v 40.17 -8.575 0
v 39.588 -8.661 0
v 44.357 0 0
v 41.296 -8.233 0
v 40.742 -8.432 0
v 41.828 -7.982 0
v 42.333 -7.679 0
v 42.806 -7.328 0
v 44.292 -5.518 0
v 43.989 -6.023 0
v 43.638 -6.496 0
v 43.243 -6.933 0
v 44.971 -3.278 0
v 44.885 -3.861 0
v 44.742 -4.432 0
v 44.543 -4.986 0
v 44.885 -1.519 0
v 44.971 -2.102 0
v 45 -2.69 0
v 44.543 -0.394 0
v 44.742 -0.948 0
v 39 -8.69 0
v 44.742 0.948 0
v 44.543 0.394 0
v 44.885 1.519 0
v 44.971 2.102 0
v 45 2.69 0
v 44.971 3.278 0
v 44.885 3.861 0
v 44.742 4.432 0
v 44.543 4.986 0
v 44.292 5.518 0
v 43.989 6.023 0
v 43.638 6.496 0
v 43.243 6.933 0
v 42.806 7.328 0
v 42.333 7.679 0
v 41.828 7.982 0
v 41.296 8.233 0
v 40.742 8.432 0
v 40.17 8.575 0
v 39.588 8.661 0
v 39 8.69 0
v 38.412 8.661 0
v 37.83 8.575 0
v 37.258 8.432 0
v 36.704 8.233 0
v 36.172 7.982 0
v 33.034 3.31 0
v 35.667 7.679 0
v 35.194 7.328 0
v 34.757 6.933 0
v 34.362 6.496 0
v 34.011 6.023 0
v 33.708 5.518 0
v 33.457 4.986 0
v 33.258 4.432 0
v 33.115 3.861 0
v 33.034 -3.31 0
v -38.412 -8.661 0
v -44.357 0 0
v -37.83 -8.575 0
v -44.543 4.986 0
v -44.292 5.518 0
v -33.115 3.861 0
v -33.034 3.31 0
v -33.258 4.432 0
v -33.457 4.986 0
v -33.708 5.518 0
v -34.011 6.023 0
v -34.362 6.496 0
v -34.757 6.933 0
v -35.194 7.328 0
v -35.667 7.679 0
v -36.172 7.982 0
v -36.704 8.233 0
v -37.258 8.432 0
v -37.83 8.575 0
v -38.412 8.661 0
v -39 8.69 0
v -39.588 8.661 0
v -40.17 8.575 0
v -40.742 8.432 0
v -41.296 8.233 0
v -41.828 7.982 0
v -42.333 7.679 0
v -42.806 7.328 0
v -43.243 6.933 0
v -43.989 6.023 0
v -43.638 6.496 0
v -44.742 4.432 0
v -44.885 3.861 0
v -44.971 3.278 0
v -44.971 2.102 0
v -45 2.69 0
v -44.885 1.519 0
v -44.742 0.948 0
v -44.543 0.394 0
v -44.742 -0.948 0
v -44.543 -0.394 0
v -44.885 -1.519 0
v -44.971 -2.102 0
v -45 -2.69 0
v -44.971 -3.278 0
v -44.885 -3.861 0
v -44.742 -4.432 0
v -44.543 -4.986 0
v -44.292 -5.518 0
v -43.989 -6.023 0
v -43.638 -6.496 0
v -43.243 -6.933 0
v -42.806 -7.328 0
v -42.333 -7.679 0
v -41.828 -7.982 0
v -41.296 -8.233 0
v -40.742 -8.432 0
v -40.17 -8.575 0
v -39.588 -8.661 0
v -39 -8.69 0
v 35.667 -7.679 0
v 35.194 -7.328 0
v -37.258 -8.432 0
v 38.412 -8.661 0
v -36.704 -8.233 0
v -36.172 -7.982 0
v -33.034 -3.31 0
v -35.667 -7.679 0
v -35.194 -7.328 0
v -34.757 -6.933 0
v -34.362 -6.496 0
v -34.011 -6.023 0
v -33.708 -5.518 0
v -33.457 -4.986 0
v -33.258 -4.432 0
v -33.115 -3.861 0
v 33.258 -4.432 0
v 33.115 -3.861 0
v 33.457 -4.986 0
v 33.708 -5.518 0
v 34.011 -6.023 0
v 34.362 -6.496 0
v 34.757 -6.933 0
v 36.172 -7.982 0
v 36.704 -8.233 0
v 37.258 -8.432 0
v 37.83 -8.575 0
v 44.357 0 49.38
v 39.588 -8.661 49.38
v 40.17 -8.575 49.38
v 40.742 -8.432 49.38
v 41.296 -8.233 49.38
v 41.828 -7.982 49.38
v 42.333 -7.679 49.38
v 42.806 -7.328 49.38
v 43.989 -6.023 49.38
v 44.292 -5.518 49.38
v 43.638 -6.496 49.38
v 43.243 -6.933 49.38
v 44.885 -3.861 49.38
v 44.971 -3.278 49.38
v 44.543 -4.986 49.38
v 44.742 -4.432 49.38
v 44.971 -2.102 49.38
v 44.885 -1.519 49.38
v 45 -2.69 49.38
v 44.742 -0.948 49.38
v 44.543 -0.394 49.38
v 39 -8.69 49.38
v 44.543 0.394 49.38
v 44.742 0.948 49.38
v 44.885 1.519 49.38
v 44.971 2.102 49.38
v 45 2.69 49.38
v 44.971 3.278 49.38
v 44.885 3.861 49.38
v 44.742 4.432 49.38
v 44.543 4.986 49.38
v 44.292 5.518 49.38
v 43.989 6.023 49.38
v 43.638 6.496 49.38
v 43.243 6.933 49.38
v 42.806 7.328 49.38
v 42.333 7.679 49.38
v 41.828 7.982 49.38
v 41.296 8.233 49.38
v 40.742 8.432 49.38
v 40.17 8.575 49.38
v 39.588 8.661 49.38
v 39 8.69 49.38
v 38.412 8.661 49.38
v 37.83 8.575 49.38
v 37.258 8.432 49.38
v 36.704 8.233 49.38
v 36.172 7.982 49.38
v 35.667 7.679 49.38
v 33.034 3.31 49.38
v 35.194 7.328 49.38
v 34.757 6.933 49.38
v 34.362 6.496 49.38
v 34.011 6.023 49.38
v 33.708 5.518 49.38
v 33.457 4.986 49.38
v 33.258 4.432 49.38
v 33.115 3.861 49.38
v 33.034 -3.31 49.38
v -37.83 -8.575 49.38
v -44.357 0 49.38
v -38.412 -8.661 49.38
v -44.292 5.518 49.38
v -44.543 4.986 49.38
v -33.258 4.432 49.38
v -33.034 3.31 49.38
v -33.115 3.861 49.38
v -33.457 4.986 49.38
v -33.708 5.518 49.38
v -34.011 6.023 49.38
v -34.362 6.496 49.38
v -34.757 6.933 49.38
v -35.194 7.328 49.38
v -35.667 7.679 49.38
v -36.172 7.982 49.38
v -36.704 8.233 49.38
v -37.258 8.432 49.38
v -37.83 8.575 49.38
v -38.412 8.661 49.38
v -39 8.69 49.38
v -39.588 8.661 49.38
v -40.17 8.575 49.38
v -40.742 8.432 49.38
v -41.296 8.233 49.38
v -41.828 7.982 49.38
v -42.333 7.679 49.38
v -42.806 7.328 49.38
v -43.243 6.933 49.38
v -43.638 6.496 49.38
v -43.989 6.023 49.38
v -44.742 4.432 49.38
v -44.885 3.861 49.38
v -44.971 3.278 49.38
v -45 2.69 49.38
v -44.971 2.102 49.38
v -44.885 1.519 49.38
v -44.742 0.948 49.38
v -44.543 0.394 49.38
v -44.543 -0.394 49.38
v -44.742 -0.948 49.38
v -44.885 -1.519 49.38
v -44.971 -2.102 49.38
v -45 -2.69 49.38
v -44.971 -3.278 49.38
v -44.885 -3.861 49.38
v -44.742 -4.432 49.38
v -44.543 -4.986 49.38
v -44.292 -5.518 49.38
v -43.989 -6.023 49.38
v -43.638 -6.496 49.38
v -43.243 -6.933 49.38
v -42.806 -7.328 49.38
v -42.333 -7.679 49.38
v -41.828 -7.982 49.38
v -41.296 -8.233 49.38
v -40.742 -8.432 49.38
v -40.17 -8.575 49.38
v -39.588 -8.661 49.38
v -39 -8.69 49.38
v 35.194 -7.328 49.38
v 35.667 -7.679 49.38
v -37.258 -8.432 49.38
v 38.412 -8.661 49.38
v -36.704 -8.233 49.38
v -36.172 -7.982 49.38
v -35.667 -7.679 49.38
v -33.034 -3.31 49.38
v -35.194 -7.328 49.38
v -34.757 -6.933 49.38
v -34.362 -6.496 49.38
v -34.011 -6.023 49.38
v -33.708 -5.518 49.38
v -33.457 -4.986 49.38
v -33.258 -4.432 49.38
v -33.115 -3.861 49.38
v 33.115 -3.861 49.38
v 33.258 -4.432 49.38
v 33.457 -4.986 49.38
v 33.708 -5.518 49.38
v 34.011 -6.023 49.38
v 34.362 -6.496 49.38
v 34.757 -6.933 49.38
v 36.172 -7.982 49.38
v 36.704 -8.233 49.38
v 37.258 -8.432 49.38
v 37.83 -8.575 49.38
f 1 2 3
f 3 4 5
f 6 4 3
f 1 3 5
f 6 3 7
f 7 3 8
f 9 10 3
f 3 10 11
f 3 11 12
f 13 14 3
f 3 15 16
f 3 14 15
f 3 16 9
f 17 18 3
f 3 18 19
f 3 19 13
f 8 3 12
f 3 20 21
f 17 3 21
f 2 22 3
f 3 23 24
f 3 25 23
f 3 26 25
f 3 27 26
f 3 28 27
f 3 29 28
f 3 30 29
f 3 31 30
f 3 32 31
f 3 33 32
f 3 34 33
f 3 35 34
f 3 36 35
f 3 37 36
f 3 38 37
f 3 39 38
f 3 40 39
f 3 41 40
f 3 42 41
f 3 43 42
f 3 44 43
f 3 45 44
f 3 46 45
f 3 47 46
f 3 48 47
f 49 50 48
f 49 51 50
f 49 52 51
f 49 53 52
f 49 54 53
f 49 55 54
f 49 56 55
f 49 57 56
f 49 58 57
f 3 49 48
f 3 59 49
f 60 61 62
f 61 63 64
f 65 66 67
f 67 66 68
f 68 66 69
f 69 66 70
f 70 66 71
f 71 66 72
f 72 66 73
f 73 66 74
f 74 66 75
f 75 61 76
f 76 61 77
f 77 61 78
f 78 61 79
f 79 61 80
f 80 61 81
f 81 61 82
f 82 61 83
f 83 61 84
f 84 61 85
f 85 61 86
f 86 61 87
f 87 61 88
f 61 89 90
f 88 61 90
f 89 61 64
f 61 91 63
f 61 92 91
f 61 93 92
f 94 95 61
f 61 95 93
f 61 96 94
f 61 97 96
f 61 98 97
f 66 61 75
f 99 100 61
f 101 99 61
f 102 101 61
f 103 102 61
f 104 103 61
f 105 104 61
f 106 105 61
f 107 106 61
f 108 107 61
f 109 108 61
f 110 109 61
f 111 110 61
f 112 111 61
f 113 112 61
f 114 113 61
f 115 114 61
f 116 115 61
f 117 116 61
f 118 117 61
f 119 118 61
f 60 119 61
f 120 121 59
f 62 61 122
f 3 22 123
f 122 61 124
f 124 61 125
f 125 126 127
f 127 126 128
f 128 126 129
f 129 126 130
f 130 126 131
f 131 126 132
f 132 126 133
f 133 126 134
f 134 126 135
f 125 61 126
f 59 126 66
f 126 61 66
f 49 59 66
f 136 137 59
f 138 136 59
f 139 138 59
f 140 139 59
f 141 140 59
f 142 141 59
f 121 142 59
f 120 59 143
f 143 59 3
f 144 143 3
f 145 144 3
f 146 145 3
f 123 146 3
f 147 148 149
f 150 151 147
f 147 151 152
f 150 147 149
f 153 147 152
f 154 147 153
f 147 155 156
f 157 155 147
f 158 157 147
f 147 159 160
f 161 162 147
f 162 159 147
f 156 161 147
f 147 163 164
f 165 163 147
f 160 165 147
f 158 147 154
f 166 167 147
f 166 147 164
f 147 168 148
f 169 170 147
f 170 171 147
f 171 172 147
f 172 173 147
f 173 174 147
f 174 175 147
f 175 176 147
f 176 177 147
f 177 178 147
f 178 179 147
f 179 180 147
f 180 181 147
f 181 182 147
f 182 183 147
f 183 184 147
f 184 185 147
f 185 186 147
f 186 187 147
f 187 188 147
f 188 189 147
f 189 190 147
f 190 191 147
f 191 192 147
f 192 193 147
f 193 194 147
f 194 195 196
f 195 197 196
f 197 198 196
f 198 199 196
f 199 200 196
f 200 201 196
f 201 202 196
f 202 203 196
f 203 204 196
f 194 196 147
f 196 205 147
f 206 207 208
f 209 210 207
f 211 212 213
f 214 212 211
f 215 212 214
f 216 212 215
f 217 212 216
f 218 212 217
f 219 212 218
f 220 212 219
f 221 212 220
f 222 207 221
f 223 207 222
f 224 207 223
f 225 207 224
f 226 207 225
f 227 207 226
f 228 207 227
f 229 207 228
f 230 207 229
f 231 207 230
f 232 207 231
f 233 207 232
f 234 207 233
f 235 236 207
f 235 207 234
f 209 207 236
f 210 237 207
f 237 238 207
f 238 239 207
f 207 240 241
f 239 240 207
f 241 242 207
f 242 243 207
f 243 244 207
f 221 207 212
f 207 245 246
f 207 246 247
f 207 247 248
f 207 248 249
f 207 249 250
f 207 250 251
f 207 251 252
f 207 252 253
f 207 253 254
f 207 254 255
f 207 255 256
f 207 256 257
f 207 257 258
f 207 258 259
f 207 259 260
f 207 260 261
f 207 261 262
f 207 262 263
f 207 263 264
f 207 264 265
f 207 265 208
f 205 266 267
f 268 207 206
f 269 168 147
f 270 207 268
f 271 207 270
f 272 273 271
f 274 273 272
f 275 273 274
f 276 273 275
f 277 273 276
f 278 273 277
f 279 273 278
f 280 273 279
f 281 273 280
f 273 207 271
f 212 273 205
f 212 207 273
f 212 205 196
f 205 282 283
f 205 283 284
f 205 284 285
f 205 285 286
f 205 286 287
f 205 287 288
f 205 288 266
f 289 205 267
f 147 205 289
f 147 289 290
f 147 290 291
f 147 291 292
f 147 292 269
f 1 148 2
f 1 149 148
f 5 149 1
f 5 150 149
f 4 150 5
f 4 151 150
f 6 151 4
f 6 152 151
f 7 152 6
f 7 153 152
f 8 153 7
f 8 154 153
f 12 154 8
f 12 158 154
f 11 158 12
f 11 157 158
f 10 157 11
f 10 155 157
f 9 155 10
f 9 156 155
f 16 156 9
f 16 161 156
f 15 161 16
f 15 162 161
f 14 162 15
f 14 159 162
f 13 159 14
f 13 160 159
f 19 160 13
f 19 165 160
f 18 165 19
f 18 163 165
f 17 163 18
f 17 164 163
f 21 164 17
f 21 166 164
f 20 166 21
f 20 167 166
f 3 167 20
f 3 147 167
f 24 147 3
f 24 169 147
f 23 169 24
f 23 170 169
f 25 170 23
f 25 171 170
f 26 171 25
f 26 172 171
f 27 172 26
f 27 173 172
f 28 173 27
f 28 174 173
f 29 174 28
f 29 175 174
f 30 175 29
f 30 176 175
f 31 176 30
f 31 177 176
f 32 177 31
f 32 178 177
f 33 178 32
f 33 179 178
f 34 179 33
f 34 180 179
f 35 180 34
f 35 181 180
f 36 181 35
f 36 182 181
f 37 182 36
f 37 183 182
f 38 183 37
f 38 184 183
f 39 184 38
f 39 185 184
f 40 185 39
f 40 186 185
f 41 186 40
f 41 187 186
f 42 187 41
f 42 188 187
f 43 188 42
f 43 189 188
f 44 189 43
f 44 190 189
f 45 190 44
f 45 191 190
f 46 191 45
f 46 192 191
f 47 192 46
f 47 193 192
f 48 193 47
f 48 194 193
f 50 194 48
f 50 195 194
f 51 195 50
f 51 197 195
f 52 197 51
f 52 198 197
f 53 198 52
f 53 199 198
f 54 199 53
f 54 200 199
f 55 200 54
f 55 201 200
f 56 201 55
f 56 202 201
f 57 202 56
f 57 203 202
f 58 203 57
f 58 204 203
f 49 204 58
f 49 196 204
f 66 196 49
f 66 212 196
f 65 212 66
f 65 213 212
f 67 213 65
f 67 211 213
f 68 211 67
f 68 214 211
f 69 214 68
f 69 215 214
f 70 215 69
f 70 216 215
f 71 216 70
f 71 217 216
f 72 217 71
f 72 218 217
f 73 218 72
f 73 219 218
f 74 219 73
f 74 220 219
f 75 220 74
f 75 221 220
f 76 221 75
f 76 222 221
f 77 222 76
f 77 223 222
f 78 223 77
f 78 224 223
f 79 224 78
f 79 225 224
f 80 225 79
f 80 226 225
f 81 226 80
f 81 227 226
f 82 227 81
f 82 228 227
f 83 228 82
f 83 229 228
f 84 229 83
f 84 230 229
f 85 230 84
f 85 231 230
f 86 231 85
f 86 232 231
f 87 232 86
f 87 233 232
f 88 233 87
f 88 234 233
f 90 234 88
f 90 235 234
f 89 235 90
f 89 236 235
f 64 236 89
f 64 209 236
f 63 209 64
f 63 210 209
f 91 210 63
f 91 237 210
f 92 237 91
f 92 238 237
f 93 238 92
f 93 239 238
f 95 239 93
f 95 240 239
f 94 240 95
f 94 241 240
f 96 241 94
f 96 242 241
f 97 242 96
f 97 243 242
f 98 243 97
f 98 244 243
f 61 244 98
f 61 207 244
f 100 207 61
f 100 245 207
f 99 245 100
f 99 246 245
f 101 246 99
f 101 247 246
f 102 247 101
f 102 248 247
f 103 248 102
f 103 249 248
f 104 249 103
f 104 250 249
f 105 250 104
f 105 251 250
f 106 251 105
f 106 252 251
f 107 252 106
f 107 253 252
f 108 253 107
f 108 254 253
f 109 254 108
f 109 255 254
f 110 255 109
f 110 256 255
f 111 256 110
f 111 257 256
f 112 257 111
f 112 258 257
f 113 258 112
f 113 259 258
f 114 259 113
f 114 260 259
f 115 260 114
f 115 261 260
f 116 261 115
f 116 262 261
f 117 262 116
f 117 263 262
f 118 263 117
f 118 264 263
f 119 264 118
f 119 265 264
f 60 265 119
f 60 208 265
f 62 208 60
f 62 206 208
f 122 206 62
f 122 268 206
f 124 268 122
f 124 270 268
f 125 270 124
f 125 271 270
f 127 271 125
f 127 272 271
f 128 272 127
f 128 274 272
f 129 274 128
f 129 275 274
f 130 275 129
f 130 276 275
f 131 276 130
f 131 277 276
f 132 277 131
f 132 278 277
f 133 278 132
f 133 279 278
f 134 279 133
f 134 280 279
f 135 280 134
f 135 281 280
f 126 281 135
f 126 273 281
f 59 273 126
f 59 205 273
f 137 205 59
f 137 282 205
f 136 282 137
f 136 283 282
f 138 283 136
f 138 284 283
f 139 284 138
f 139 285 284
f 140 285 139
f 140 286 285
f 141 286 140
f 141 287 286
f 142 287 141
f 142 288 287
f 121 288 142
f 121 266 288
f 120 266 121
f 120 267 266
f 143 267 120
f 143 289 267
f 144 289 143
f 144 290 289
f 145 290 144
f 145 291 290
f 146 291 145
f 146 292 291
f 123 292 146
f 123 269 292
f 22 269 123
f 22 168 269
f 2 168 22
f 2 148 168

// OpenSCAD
/* doodle-meta {"version":1,"parameters":{"width":{"label":"Overall width","description":"Changes the body width along X","unit":"mm","feature":"body_width"},"depth":{"label":"Overall depth","description":"Changes the body depth along Y","unit":"mm","feature":"body_depth"},"height":{"label":"Overall height","description":"Changes the body height along Z","unit":"mm","feature":"body_height"},"corner_radius":{"label":"Corner radius","description":"Radius of the rounded vertical edges","unit":"mm","feature":"corner_fillet"}},"features":{"body_width":{"kind":"dimension","axis":"x","label":"Overall width"},"body_depth":{"kind":"dimension","axis":"y","label":"Overall depth"},"body_height":{"kind":"dimension","axis":"z","label":"Overall height"},"corner_fillet":{"kind":"region","label":"Rounded vertical edges","min":[0,0,0],"max":[{"parameter":"width","scale":1,"offset":0},{"parameter":"depth","scale":1,"offset":0},{"parameter":"height","scale":1,"offset":0}]}}} */

// Top-level editable parameters
width = 90.0;
depth = 6.62;
height = 49.38;
corner_radius = 6.0;

// Derived constants (not editable)
$fn = 64;
eps = 0.01;

// Module: Rounded rectangle profile in XY plane
module rounded_rect_profile(w, d, r) {
    // Constructed from a central cross and four corner cylinders
    // Central cross
    square([w - 2*r, d], center=true);
    square([w, d - 2*r], center=true);
    
    // Four corners
    translate([w/2 - r, d/2 - r, 0]) circle(r=r);
    translate([-w/2 + r, d/2 - r, 0]) circle(r=r);
    translate([w/2 - r, -d/2 + r, 0]) circle(r=r);
    translate([-w/2 + r, -d/2 + r, 0]) circle(r=r);
}

// Main design
// The object sits on the build plate (Z=0 to Z=height)
// Centered in X and Y for symmetry, extruded along Z

translate([0, 0, height/2]) {
    linear_extrude(height=height, center=true) {
        rounded_rect_profile(width, depth, corner_radius);
    }
}
